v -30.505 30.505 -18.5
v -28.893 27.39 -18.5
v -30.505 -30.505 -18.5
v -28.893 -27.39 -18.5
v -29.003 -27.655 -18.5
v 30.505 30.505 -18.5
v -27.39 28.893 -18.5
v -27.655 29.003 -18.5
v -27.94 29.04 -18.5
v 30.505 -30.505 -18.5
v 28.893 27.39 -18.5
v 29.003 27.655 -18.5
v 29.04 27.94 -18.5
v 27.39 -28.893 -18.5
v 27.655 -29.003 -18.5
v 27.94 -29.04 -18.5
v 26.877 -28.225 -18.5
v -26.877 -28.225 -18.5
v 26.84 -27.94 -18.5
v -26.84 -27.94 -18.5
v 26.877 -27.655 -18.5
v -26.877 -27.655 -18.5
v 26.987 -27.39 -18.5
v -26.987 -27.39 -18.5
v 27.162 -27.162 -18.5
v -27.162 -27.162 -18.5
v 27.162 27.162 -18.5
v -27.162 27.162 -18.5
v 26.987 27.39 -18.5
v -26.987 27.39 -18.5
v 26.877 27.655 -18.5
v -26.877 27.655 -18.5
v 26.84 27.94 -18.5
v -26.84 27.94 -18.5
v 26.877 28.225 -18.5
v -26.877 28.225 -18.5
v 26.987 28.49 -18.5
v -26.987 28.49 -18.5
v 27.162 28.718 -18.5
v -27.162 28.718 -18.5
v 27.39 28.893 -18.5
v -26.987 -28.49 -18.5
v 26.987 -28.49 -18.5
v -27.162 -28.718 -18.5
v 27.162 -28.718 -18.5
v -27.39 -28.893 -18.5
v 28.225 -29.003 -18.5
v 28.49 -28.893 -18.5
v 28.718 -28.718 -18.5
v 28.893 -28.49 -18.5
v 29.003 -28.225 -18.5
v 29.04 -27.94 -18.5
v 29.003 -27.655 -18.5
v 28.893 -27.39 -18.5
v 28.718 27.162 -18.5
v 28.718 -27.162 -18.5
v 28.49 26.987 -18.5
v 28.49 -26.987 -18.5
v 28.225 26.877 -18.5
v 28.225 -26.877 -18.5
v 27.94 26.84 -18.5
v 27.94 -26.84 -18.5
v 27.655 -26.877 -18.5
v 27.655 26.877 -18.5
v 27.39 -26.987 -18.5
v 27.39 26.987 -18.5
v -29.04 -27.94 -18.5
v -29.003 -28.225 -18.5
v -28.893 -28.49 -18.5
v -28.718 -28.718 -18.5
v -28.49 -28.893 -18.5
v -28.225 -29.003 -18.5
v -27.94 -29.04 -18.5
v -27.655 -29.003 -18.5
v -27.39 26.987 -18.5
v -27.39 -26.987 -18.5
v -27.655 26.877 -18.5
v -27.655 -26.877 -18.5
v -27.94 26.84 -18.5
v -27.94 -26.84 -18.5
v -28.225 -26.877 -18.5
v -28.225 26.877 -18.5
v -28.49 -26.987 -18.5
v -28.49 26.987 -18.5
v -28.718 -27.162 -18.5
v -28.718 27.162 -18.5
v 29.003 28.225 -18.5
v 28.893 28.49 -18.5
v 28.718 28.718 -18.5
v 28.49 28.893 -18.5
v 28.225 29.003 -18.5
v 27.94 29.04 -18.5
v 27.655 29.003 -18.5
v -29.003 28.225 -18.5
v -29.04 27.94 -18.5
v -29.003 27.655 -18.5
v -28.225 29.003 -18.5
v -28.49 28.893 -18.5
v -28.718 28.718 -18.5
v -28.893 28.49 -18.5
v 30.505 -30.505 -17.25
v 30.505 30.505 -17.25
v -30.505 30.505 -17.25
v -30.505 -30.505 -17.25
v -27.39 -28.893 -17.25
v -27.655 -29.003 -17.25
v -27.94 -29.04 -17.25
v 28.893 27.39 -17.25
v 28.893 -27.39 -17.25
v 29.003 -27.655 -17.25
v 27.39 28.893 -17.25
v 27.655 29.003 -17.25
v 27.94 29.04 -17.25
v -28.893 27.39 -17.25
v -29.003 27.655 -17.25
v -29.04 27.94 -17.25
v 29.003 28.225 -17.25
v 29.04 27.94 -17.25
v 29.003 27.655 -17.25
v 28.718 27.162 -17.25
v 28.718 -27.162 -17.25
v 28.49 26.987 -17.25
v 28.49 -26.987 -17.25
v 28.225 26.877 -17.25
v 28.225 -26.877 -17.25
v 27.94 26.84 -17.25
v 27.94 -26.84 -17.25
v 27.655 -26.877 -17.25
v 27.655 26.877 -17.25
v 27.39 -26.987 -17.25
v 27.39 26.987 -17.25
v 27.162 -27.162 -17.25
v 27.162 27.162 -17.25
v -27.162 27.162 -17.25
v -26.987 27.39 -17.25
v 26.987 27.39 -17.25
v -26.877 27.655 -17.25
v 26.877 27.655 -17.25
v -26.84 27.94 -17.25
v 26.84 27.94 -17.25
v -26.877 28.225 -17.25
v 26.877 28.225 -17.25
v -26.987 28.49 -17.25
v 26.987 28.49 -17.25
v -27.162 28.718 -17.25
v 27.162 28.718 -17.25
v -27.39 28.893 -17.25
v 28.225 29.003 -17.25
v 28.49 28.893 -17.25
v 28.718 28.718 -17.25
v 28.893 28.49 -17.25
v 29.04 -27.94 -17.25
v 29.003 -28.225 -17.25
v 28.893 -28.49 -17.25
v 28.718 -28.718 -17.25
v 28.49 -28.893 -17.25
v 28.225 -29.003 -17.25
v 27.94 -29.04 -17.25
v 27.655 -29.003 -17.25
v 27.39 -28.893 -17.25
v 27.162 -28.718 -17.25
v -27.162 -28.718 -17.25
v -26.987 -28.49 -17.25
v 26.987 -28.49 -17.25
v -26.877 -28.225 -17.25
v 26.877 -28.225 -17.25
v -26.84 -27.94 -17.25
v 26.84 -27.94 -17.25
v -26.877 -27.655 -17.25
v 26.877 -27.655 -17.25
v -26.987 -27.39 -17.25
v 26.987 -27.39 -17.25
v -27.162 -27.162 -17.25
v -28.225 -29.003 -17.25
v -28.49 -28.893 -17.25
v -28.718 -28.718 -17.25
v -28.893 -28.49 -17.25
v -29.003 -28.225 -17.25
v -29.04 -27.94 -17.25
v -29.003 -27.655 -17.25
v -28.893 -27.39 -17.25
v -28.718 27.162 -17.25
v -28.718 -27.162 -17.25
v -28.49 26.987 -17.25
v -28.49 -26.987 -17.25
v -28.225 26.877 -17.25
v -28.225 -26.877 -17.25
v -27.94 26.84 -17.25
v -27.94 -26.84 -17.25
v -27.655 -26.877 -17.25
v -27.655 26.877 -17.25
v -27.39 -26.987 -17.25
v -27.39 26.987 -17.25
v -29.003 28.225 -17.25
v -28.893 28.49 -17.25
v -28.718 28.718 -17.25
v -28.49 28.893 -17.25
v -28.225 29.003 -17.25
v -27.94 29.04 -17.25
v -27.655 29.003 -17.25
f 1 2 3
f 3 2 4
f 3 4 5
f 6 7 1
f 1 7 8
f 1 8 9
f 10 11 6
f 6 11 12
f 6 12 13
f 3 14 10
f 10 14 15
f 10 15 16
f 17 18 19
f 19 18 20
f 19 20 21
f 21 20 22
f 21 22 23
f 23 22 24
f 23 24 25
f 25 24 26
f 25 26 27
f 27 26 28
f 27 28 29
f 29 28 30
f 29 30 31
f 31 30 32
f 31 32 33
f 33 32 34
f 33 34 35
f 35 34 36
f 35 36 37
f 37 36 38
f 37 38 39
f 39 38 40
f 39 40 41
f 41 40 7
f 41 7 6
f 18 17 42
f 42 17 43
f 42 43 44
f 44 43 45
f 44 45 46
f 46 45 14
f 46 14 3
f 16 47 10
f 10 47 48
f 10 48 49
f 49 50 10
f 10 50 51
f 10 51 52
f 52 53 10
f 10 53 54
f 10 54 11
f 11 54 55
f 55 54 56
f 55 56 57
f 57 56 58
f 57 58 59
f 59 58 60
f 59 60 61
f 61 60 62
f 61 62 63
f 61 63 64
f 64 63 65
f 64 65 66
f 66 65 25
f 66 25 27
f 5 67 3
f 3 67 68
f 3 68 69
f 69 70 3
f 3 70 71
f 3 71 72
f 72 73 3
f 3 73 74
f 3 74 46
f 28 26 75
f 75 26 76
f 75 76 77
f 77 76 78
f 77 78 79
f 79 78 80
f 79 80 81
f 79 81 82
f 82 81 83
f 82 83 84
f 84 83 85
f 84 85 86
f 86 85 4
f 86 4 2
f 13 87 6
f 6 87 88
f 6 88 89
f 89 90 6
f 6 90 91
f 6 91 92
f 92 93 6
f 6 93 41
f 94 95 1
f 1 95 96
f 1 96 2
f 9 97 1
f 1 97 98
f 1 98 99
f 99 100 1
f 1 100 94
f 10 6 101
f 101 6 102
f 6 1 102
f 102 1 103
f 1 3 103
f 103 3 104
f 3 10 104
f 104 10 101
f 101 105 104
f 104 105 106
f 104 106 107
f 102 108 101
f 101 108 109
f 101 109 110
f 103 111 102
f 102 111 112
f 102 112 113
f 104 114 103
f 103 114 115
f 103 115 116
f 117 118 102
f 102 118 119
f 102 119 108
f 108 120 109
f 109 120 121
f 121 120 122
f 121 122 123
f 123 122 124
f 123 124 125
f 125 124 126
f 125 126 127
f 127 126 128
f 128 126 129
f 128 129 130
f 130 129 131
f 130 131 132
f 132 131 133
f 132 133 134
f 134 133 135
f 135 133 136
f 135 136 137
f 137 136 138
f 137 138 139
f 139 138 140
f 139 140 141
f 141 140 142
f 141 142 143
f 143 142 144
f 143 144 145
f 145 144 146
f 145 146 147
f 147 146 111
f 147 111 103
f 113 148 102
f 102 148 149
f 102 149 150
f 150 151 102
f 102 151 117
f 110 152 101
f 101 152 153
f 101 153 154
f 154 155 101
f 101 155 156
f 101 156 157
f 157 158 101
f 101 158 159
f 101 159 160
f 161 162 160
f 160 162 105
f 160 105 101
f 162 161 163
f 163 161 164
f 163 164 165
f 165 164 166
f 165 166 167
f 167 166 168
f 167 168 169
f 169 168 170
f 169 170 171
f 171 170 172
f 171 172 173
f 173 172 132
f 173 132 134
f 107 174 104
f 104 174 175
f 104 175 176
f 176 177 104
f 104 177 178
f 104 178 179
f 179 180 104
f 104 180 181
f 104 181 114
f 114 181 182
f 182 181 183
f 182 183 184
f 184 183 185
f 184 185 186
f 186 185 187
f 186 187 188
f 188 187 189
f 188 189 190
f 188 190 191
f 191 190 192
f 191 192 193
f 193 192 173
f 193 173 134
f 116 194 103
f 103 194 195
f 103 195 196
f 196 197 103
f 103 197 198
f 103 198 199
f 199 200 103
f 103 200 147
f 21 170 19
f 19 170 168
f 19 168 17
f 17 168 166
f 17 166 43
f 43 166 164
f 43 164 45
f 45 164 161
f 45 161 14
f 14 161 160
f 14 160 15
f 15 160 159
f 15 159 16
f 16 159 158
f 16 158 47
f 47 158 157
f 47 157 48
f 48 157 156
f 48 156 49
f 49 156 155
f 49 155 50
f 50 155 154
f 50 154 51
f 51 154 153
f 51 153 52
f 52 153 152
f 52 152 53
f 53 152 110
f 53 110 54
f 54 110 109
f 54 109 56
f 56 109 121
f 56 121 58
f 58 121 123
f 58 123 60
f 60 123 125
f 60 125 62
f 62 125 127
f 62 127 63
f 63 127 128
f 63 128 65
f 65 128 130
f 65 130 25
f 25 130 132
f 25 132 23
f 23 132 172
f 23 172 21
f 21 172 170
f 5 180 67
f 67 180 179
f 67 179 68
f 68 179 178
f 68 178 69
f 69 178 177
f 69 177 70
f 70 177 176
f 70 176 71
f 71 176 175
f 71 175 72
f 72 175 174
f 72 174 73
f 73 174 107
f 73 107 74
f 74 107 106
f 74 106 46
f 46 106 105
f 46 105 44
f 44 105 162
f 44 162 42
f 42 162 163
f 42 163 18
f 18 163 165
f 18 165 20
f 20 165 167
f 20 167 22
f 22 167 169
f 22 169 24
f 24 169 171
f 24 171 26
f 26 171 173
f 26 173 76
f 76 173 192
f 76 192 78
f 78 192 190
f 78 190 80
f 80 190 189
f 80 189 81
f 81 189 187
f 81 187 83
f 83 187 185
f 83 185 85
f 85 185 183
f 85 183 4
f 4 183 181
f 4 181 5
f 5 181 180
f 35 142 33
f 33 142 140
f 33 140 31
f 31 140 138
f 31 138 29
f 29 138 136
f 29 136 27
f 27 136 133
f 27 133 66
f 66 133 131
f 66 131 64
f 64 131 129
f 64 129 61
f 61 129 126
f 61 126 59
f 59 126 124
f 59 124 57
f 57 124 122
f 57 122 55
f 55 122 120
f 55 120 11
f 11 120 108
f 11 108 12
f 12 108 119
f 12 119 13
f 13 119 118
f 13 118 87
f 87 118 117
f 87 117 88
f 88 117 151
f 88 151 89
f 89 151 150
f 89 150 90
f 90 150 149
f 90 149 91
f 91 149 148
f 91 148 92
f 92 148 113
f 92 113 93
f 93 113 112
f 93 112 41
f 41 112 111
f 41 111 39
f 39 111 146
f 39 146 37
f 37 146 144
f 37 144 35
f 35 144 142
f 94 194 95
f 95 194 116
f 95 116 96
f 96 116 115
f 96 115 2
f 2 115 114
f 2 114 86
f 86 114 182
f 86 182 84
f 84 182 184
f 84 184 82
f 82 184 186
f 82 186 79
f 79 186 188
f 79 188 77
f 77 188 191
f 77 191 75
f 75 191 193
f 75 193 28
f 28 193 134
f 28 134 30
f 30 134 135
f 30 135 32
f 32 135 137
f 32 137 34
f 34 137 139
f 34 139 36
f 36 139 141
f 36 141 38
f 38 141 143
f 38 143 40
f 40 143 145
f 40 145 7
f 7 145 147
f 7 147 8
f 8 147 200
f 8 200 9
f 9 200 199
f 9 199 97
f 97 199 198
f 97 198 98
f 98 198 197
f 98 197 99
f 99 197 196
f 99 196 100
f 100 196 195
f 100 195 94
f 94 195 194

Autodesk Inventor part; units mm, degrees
ref_plane "YZ Plane" through (0, 0, 0) normal (1, 0, 0) x (0, 1, 0)
ref_plane "XZ Plane" through (0, 0, 0) normal (0, 1, 0) x (-1, 0, 0)
ref_plane "XY Plane" through (0, 0, 0) normal (0, 0, 1) x (1, 0, 0)
sketch "Skizze1" plane through (0, 0, 0) normal (0, 0, 1) x (1, 0, 0)
  line L0 (-33.02, -33.02) -> (33.02, -33.02)
  line L1 (33.02, -33.02) -> (33.02, 33.02)
  line L2 (33.02, 33.02) -> (-33.02, 33.02)
  line L3 (-33.02, 33.02) -> (-33.02, -33.02)
  line L4 (-33.02, -33.02) -> (33.02, 33.02) construction
  line L5 (33.02, -33.02) -> (-33.02, 33.02) construction
  line L6 (-34, -34) -> (34, -34)
  line L7 (34, -34) -> (34, 34)
  line L8 (34, 34) -> (-34, 34)
  line L9 (-34, 34) -> (-34, -34)
  line L10 (-34, -34) -> (34, 34) construction
  line L11 (34, -34) -> (-34, 34) construction
  point P0 (0, 0)
  dimension "d0" = 66.04
  dimension "d1" = 66.04
  dimension "d2" = 68
  dimension "d3" = 68
extrude "Extrusion1" add sketch "Skizze1" along normal blind 6.5
sketch "Skizze2" plane through (0, 0, 6.5) normal (0, 0, 1) x (1, 0, 0)
  line L0 (-33.02, 33.02) -> (33.02, 33.02) projected
  line L1 (-33.02, -33.02) -> (33.02, -33.02)
  line L2 (33.02, -33.02) -> (33.02, 33.02)
  line L3 (33.02, 33.02) -> (-33.02, 33.02)
  line L4 (-33.02, 33.02) -> (-33.02, -33.02)
  line L5 (-33.02, -33.02) -> (33.02, 33.02) construction
  line L6 (33.02, -33.02) -> (-33.02, 33.02) construction
  line L7 (34, -34) -> (34, 34) projected
  line L8 (34, 34) -> (-34, 34) projected
  line L9 (-34, 34) -> (-34, -34) projected
  line L10 (-34, -34) -> (34, -34) projected
  line L11 (-33.02, -33.02) -> (-33.02, 33.02) projected
  line L12 (-33.02, 33.02) -> (33.02, 33.02) projected
  line L13 (33.02, 33.02) -> (33.02, -33.02) projected
  line L14 (33.02, -33.02) -> (-33.02, -33.02) projected
  point P0 (0, 0)
extrude "Extrusion2" add sketch "Skizze2" along normal blind 2 contours L0 L2 L1 L4 | L10 L9 L8 L7
sketch "Skizze3" plane through (0, 0, 6.5) normal (0, 0, -1) x (-1, 0, 0)
  line L0 (-27.94, -27.94) -> (27.94, -27.94)
  line L1 (27.94, -27.94) -> (27.94, 27.94)
  line L2 (27.94, 27.94) -> (-27.94, 27.94)
  line L3 (-27.94, 27.94) -> (-27.94, -27.94)
  line L4 (-27.94, -27.94) -> (27.94, 27.94) construction
  line L5 (27.94, -27.94) -> (-27.94, 27.94) construction
  circle A0 centre (-27.94, 27.94) radius 3.35
  circle A1 centre (27.94, 27.94) radius 3.35
  circle A2 centre (27.94, -27.94) radius 3.35
  circle A3 centre (-27.94, -27.94) radius 3.35
  point P0 (0, 0)
  dimension "d8" = 55.88
  dimension "d9" = 55.88
  dimension "d10" = 6.7
  dimension "d11" = 6.7
  dimension "d12" = 6.7
  dimension "d13" = 6.7
extrude "Extrusion3" add sketch "Skizze3" along normal blind 5 contours L3 A3 L0 | L0 A3 L3 | A2 L1 L0 | L0 L1 A2 | A0 L2 L3 | L3 L2 A0 | A1 L2 L1 | L1 L2 A1
sketch "Skizze4" plane through (27.94, 27.94, 1.5) normal (0, 0, -1) x (-1, 0, 0)
  circle A0 centre (0, 0) radius 1.1
  circle A1 centre (55.88, 0) radius 3.35 projected
  circle A2 centre (55.88, 0) radius 1.1
  circle A3 centre (55.88, -55.88) radius 3.35 projected
  circle A4 centre (55.88, -55.88) radius 1.1
  circle A5 centre (0, -55.88) radius 3.35 projected
  circle A6 centre (0, -55.88) radius 1.1
  point P0 (27.94, -27.94)
  dimension "d17" = 2.2
  dimension "d18" = 2.2
  dimension "d19" = 2.2
  dimension "d20" = 2.2
extrude "Extrusion4" cut sketch "Skizze4" against normal blind 5 contours A0 | A2 | A4 | A6
sketch "Skizze5" plane through (0, 0, 0) normal (0, 0, -1) x (-1, 0, 0)
  line L0 (-34, -34) -> (-34, 34) projected
  line L1 (34, -34) -> (-34, -34) projected
  line L2 (34, 34) -> (34, -34) projected
  line L3 (-34, 34) -> (34, 34) projected
  line L4 (33.02, -33.02) -> (33.02, 33.02) projected
  line L5 (-33.02, -33.02) -> (33.02, -33.02) projected
  line L6 (-33.02, 33.02) -> (-33.02, -33.02) projected
  line L7 (33.02, 33.02) -> (-33.02, 33.02) projected
  point P0 (0, 0)
extrude "Extrusion5" add sketch "Skizze5" along normal blind 4
sketch "Skizze6" plane through (0, 0, -4) normal (0, 0, -1) x (-1, 0, 0)
  line L0 (-33.02, -33.02) -> (33.02, -33.02)
  line L1 (33.02, -33.02) -> (33.02, 33.02)
  line L2 (33.02, 33.02) -> (-33.02, 33.02)
  line L3 (-33.02, 33.02) -> (-33.02, -33.02)
  line L4 (-33.02, -33.02) -> (33.02, 33.02) construction
  line L5 (33.02, -33.02) -> (-33.02, 33.02) construction
  line L6 (33.02, -33.02) -> (20.02, -33.02)
  line L7 (-33.02, -33.02) -> (33.02, -33.02) projected
  line L8 (20.02, -33.02) -> (10.08, -33.02)
  line L9 (34, -34) -> (-34, -34) projected
  line L10 (10.08, -33.02) -> (20.02, -33.02)
  line L11 (20.02, -33.02) -> (20.02, -34)
  line L12 (20.02, -34) -> (10.08, -34)
  line L13 (10.08, -34) -> (10.08, -33.02)
  point P0 (0, 0)
  point P1 (-24.13, -33.02)
  point P2 (24.13, -33.02)
  dimension "d25" = 66.04
  dimension "d26" = 66.04
  dimension "d27" = 13
  dimension "d28" = 9.94
extrude "Extrusion6" cut sketch "Skizze6" against normal blind 4 contours L0 L11 L9 L13
fillet "Rundung2" radius 1.75 2 edges at (-10.08, -33.51, 0) (-20.02, -33.51, 0)
sketch "Skizze7" plane through (0, 0, -4) normal (0, 0, -1) x (-1, 0, 0)
  line L0 (34, 34) -> (-34, 34) projected
  line L1 (-34, -34) -> (34, -34)
  line L2 (34, -34) -> (34, 34)
  line L3 (34, 34) -> (-34, 34)
  line L4 (-34, 34) -> (-34, -34)
  line L5 (-34, -34) -> (34, 34) construction
  line L6 (34, -34) -> (-34, 34) construction
  line L7 (-35, -35) -> (35, -35)
  line L8 (35, -35) -> (35, 35)
  line L9 (35, 35) -> (-35, 35)
  line L10 (-35, 35) -> (-35, -35)
  line L11 (-35, -35) -> (35, 35) construction
  line L12 (35, -35) -> (-35, 35) construction
  point P0 (0, 0)
  point P1 (-34, 34)
  dimension "d32" = 70
  dimension "d33" = 70
extrude "Extrusion7" add sketch "Skizze7" against normal up to surface (12.5 mm away)
sketch "Skizze8" plane through (-20.02, -34, -4) normal (0, 1, 0) x (1, 0, 0)
  line L0 (9.94, -2.25) -> (9.94, 0) projected
  line L1 (0, 0) -> (9.94, 0) projected
  line L2 (0, 0) -> (0, -2.25) projected
  arc A0 (0, -2.25) -> (1.75, -4) centre (1.75, -2.25) ccw projected
  line L3 (1.75, -4) -> (8.19, -4) projected
  arc A1 (8.19, -4) -> (9.94, -2.25) centre (8.19, -2.25) ccw projected
  point P0 (20.02, -4)
extrude "Extrusion8" cut sketch "Skizze8" against normal blind 10
sketch "Skizze9" plane through (0, 0, -4) normal (0, 0, -1) x (-1, 0, 0)
  line L0 (-33.52, 33.52) -> (33.52, 33.52)
  line L1 (33.52, 33.52) -> (33.52, -33.52)
  line L2 (33.52, -33.52) -> (-33.52, -33.52)
  line L3 (-33.52, -33.52) -> (-33.52, 33.52)
  line L4 (-33.52, 33.52) -> (33.52, -33.52) construction
  line L5 (33.52, 33.52) -> (-33.52, -33.52) construction
  line L6 (10.08, -35) -> (10.08, -33.02) projected
  line L7 (10.08, -33.02) -> (-33.02, -33.02) projected
  line L8 (-33.02, -33.02) -> (-33.02, 33.02) projected
  line L9 (-33.02, 33.02) -> (33.02, 33.02) projected
  line L10 (33.02, 33.02) -> (33.02, -33.02) projected
  line L11 (33.02, -33.02) -> (20.02, -33.02) projected
  line L12 (20.02, -33.02) -> (20.02, -35) projected
  line L13 (20.02, -35) -> (35, -35) projected
  line L14 (35, -35) -> (35, 35) projected
  line L15 (35, 35) -> (-35, 35) projected
  line L16 (-35, 35) -> (-35, -35) projected
  line L17 (-35, -35) -> (10.08, -35) projected
  point P0 (0, 0)
  point P1 (10.08, -33.52)
  point P2 (20.02, -33.52)
  dimension "d38" = 67.04
  dimension "d39" = 67.04
extrude "Extrusion9" cut sketch "Skizze9" against normal up to surface (10.5 mm away) contours L0 L1 L2 L12 L11 L10 L9 L8 L7 L6 L3
fillet "Rundung3" radius 2 4 edges at (31.29, -27.94, 6.5) (31.29, 27.94, 6.5) (-24.59, 27.94, 6.5) (-24.59, -27.94, 6.5)
sketch "Skizze10" plane through (-35, -35, -4) normal (-1, 0, 0) x (0, 0, 1)
  point P0 (4, 35)
sketch "Skizze11" plane through (0, 0, 8.5) normal (0, 0, 1) x (1, 0, 0)
  point P0 (0, 0)
sketch "Skizze12" plane through (-18.27, -33.02, 0) normal (0, 1, 0) x (1, 0, 0)
  line L0 (-1.75, 1.75) -> (-1.75, -6.5) projected
  line L1 (8.19, -6.5) -> (-1.75, -6.5) projected
  line L2 (8.19, -6.5) -> (8.19, 1.75) projected
  arc A0 (6.44, 0) -> (8.19, 1.75) centre (6.44, 1.75) ccw projected
  line L3 (6.44, 0) -> (0, 0) projected
  arc A1 (-1.75, 1.75) -> (0, 0) centre (0, 1.75) ccw projected
  point P0 (18.27, 0)
extrude "Extrusion10" cut sketch "Skizze12" against normal up to surface (0.5 mm away)
sketch "Skizze13" plane through (0, 0, -4) normal (0, 0, -1) x (-1, 0, 0)
  circle A0 centre (0, 0) radius 4
  line L0 (0, 0) -> (-10.0581, 1.7135)
  line L1 (0, 0) -> (10.203, 0) construction
  line L2 (0, 0) -> (1.8539, 9.7483)
  line L3 (0, 0) -> (9.923, 0) construction
  line L4 (0, 0) -> (9.888, -2.1637)
  line L5 (0, 0) -> (10.122, 0) construction
  line L6 (0, 0) -> (-2.0234, -10.1982)
  line L7 (0, 0) -> (10.397, 0) construction
  circle A1 centre (-2.0234, -10.1982) radius 2.5
  circle A2 centre (-10.0581, 1.7135) radius 2.5
  circle A3 centre (1.8539, 9.7483) radius 2.5
  circle A4 centre (9.888, -2.1637) radius 2.5
  dimension "d59" = 8
  dimension "d60" = 10.203
  dimension "d61" = 170.332
  dimension "d62" = 9.923
  dimension "d63" = 79.232
  dimension "d64" = 10.122
  dimension "d65" = 12.343
  dimension "d66" = 10.397
  dimension "d67" = 101.222
  dimension "d68" = 5
  dimension "d69" = 5
  dimension "d70" = 5
  dimension "d71" = 5
extrude "Extrusion11" add sketch "Skizze13" against normal up to surface (10.5 mm away) contours A1 | A2 | A3 | A4
sketch "Skizze14" plane through (-9.888, -2.1637, -4) normal (0, 0, -1) x (-1, 0, 0)
  circle A0 centre (0, 0) radius 2.5 projected
  circle A1 centre (-11.9114, -8.0345) radius 2.5 projected
  circle A2 centre (-19.9461, 3.8772) radius 2.5 projected
  circle A3 centre (-8.0341, 11.912) radius 2.5 projected
  point P0 (-9.888, 2.1637)
extrude "Extrusion12" cut sketch "Skizze14" against normal blind 5.5
fillet "Rundung4" radius 4 4 edges at (12.5581, 1.7135, 6.5) (0.6461, 9.7483, 6.5) (-7.388, -2.1637, 6.5) (4.5234, -10.1982, 6.5)
sketch "Skizze15" plane through (-9.888, -2.1637, 1.5) normal (0, 0, -1) x (-1, 0, 0)
  circle A0 centre (0, 0) radius 1
  circle A1 centre (-11.9114, -8.0345) radius 2.5 projected
  circle A2 centre (-11.9114, -8.0345) radius 1
  circle A3 centre (-19.9461, 3.8772) radius 2.5 projected
  circle A4 centre (-19.9461, 3.8772) radius 1
  circle A5 centre (-8.0341, 11.912) radius 2.5 projected
  circle A6 centre (-8.0341, 11.912) radius 1
  point P0 (-9.888, 2.1637)
  dimension "d77" = 2
  dimension "d78" = 2
  dimension "d79" = 2
  dimension "d80" = 2
extrude "Extrusion13" cut sketch "Skizze15" against normal blind 5 contours A0 | A2 | A4 | A6
chamfer "Fase1" distance 4 angle 45 4 edges at (-33.52, 0, 6.5) (0, -33.52, 6.5) (0, 33.52, 6.5) (33.52, 0, 6.5)
sketch "Skizze16" plane through (10.0581, 1.7135, 1.5) normal (0, 0, -1) x (-1, 0, 0)
  circle A0 centre (0, 0) radius 1.6
  circle A1 centre (8.0347, -11.9117) radius 1 projected
  circle A2 centre (8.0347, -11.9117) radius 1.6
  circle A3 centre (11.912, 8.0348) radius 1 projected
  circle A4 centre (11.912, 8.0348) radius 1.6
  circle A5 centre (19.9461, -3.8772) radius 1 projected
  circle A6 centre (19.9461, -3.8772) radius 1.6
  point P0 (10.0581, -1.7135)
  dimension "d86" = 3.2
  dimension "d87" = 3.2
  dimension "d88" = 3.2
  dimension "d89" = 3.2
extrude "Extrusion14" cut sketch "Skizze16" against normal blind 10 contours A0 | A1 | A2 | A3 | A4 | A5 | A6
chamfer "Fase2" distance 2 angle 45 4 edges at (-8.288, -2.1637, 8.5) (3.6234, -10.1982, 8.5) (11.6581, 1.7135, 8.5) (-0.2539, 9.7483, 8.5)
sketch "Skizze17" plane through (27.94, 27.94, 1.5) normal (0, 0, -1) x (-1, 0, 0)
  circle A0 centre (0, 0) radius 1.1 projected
  circle A1 centre (0, 0) radius 3.35 projected
  circle A2 centre (55.88, 0) radius 1.1 projected
  circle A3 centre (55.88, 0) radius 3.35 projected
  circle A4 centre (55.88, -55.88) radius 1.1 projected
  circle A5 centre (55.88, -55.88) radius 3.35 projected
  circle A6 centre (0, -55.88) radius 1.1 projected
  circle A7 centre (0, -55.88) radius 3.35 projected
  line L0 (61.46, 5.58) -> (58.4446, 2.5646) projected
  line L1 (-2.5646, -58.4446) -> (58.4446, -58.4446)
  line L2 (58.4446, -58.4446) -> (58.4446, 2.5646)
  line L3 (58.4446, 2.5646) -> (-2.5646, 2.5646)
  line L4 (-2.5646, 2.5646) -> (-2.5646, -58.4446)
  line L5 (-2.5646, -58.4446) -> (58.4446, 2.5646) construction
  line L6 (58.4446, -58.4446) -> (-2.5646, 2.5646) construction
  point P0 (27.94, -27.94)
extrude "Extrusion15" add sketch "Skizze17" along normal blind 20 contours A1 L4 L3 | A1 L3 A3 L2 A5 L1 A7 L4 | A1 L4 L3 | L3 A3 L2 | A7 L1 L4 | L3 L2 A3 | A7 L1 L4 | L2 A5 L1 | L2 L1 A5
sketch "Skizze18" plane through (0, 0, 8.5) normal (0, 0, 1) x (1, 0, 0)
  line L0 (-192.7529, 161.1187) -> (54.5088, 161.1187)
  line L1 (54.5088, 161.1187) -> (54.5088, -50.2743)
  line L2 (54.5088, -50.2743) -> (-192.7529, -50.2743)
  line L3 (-192.7529, -50.2743) -> (-192.7529, 161.1187)
  line L4 (-192.7529, 161.1187) -> (54.5088, -50.2743) construction
  line L5 (54.5088, 161.1187) -> (-192.7529, -50.2743) construction
  point P0 (0, 0)
  point P1 (-69.122, 55.4222)
extrude "Extrusion16" cut sketch "Skizze18" against normal blind 25.75
properties part number "bottomplate_3D-Druck"
